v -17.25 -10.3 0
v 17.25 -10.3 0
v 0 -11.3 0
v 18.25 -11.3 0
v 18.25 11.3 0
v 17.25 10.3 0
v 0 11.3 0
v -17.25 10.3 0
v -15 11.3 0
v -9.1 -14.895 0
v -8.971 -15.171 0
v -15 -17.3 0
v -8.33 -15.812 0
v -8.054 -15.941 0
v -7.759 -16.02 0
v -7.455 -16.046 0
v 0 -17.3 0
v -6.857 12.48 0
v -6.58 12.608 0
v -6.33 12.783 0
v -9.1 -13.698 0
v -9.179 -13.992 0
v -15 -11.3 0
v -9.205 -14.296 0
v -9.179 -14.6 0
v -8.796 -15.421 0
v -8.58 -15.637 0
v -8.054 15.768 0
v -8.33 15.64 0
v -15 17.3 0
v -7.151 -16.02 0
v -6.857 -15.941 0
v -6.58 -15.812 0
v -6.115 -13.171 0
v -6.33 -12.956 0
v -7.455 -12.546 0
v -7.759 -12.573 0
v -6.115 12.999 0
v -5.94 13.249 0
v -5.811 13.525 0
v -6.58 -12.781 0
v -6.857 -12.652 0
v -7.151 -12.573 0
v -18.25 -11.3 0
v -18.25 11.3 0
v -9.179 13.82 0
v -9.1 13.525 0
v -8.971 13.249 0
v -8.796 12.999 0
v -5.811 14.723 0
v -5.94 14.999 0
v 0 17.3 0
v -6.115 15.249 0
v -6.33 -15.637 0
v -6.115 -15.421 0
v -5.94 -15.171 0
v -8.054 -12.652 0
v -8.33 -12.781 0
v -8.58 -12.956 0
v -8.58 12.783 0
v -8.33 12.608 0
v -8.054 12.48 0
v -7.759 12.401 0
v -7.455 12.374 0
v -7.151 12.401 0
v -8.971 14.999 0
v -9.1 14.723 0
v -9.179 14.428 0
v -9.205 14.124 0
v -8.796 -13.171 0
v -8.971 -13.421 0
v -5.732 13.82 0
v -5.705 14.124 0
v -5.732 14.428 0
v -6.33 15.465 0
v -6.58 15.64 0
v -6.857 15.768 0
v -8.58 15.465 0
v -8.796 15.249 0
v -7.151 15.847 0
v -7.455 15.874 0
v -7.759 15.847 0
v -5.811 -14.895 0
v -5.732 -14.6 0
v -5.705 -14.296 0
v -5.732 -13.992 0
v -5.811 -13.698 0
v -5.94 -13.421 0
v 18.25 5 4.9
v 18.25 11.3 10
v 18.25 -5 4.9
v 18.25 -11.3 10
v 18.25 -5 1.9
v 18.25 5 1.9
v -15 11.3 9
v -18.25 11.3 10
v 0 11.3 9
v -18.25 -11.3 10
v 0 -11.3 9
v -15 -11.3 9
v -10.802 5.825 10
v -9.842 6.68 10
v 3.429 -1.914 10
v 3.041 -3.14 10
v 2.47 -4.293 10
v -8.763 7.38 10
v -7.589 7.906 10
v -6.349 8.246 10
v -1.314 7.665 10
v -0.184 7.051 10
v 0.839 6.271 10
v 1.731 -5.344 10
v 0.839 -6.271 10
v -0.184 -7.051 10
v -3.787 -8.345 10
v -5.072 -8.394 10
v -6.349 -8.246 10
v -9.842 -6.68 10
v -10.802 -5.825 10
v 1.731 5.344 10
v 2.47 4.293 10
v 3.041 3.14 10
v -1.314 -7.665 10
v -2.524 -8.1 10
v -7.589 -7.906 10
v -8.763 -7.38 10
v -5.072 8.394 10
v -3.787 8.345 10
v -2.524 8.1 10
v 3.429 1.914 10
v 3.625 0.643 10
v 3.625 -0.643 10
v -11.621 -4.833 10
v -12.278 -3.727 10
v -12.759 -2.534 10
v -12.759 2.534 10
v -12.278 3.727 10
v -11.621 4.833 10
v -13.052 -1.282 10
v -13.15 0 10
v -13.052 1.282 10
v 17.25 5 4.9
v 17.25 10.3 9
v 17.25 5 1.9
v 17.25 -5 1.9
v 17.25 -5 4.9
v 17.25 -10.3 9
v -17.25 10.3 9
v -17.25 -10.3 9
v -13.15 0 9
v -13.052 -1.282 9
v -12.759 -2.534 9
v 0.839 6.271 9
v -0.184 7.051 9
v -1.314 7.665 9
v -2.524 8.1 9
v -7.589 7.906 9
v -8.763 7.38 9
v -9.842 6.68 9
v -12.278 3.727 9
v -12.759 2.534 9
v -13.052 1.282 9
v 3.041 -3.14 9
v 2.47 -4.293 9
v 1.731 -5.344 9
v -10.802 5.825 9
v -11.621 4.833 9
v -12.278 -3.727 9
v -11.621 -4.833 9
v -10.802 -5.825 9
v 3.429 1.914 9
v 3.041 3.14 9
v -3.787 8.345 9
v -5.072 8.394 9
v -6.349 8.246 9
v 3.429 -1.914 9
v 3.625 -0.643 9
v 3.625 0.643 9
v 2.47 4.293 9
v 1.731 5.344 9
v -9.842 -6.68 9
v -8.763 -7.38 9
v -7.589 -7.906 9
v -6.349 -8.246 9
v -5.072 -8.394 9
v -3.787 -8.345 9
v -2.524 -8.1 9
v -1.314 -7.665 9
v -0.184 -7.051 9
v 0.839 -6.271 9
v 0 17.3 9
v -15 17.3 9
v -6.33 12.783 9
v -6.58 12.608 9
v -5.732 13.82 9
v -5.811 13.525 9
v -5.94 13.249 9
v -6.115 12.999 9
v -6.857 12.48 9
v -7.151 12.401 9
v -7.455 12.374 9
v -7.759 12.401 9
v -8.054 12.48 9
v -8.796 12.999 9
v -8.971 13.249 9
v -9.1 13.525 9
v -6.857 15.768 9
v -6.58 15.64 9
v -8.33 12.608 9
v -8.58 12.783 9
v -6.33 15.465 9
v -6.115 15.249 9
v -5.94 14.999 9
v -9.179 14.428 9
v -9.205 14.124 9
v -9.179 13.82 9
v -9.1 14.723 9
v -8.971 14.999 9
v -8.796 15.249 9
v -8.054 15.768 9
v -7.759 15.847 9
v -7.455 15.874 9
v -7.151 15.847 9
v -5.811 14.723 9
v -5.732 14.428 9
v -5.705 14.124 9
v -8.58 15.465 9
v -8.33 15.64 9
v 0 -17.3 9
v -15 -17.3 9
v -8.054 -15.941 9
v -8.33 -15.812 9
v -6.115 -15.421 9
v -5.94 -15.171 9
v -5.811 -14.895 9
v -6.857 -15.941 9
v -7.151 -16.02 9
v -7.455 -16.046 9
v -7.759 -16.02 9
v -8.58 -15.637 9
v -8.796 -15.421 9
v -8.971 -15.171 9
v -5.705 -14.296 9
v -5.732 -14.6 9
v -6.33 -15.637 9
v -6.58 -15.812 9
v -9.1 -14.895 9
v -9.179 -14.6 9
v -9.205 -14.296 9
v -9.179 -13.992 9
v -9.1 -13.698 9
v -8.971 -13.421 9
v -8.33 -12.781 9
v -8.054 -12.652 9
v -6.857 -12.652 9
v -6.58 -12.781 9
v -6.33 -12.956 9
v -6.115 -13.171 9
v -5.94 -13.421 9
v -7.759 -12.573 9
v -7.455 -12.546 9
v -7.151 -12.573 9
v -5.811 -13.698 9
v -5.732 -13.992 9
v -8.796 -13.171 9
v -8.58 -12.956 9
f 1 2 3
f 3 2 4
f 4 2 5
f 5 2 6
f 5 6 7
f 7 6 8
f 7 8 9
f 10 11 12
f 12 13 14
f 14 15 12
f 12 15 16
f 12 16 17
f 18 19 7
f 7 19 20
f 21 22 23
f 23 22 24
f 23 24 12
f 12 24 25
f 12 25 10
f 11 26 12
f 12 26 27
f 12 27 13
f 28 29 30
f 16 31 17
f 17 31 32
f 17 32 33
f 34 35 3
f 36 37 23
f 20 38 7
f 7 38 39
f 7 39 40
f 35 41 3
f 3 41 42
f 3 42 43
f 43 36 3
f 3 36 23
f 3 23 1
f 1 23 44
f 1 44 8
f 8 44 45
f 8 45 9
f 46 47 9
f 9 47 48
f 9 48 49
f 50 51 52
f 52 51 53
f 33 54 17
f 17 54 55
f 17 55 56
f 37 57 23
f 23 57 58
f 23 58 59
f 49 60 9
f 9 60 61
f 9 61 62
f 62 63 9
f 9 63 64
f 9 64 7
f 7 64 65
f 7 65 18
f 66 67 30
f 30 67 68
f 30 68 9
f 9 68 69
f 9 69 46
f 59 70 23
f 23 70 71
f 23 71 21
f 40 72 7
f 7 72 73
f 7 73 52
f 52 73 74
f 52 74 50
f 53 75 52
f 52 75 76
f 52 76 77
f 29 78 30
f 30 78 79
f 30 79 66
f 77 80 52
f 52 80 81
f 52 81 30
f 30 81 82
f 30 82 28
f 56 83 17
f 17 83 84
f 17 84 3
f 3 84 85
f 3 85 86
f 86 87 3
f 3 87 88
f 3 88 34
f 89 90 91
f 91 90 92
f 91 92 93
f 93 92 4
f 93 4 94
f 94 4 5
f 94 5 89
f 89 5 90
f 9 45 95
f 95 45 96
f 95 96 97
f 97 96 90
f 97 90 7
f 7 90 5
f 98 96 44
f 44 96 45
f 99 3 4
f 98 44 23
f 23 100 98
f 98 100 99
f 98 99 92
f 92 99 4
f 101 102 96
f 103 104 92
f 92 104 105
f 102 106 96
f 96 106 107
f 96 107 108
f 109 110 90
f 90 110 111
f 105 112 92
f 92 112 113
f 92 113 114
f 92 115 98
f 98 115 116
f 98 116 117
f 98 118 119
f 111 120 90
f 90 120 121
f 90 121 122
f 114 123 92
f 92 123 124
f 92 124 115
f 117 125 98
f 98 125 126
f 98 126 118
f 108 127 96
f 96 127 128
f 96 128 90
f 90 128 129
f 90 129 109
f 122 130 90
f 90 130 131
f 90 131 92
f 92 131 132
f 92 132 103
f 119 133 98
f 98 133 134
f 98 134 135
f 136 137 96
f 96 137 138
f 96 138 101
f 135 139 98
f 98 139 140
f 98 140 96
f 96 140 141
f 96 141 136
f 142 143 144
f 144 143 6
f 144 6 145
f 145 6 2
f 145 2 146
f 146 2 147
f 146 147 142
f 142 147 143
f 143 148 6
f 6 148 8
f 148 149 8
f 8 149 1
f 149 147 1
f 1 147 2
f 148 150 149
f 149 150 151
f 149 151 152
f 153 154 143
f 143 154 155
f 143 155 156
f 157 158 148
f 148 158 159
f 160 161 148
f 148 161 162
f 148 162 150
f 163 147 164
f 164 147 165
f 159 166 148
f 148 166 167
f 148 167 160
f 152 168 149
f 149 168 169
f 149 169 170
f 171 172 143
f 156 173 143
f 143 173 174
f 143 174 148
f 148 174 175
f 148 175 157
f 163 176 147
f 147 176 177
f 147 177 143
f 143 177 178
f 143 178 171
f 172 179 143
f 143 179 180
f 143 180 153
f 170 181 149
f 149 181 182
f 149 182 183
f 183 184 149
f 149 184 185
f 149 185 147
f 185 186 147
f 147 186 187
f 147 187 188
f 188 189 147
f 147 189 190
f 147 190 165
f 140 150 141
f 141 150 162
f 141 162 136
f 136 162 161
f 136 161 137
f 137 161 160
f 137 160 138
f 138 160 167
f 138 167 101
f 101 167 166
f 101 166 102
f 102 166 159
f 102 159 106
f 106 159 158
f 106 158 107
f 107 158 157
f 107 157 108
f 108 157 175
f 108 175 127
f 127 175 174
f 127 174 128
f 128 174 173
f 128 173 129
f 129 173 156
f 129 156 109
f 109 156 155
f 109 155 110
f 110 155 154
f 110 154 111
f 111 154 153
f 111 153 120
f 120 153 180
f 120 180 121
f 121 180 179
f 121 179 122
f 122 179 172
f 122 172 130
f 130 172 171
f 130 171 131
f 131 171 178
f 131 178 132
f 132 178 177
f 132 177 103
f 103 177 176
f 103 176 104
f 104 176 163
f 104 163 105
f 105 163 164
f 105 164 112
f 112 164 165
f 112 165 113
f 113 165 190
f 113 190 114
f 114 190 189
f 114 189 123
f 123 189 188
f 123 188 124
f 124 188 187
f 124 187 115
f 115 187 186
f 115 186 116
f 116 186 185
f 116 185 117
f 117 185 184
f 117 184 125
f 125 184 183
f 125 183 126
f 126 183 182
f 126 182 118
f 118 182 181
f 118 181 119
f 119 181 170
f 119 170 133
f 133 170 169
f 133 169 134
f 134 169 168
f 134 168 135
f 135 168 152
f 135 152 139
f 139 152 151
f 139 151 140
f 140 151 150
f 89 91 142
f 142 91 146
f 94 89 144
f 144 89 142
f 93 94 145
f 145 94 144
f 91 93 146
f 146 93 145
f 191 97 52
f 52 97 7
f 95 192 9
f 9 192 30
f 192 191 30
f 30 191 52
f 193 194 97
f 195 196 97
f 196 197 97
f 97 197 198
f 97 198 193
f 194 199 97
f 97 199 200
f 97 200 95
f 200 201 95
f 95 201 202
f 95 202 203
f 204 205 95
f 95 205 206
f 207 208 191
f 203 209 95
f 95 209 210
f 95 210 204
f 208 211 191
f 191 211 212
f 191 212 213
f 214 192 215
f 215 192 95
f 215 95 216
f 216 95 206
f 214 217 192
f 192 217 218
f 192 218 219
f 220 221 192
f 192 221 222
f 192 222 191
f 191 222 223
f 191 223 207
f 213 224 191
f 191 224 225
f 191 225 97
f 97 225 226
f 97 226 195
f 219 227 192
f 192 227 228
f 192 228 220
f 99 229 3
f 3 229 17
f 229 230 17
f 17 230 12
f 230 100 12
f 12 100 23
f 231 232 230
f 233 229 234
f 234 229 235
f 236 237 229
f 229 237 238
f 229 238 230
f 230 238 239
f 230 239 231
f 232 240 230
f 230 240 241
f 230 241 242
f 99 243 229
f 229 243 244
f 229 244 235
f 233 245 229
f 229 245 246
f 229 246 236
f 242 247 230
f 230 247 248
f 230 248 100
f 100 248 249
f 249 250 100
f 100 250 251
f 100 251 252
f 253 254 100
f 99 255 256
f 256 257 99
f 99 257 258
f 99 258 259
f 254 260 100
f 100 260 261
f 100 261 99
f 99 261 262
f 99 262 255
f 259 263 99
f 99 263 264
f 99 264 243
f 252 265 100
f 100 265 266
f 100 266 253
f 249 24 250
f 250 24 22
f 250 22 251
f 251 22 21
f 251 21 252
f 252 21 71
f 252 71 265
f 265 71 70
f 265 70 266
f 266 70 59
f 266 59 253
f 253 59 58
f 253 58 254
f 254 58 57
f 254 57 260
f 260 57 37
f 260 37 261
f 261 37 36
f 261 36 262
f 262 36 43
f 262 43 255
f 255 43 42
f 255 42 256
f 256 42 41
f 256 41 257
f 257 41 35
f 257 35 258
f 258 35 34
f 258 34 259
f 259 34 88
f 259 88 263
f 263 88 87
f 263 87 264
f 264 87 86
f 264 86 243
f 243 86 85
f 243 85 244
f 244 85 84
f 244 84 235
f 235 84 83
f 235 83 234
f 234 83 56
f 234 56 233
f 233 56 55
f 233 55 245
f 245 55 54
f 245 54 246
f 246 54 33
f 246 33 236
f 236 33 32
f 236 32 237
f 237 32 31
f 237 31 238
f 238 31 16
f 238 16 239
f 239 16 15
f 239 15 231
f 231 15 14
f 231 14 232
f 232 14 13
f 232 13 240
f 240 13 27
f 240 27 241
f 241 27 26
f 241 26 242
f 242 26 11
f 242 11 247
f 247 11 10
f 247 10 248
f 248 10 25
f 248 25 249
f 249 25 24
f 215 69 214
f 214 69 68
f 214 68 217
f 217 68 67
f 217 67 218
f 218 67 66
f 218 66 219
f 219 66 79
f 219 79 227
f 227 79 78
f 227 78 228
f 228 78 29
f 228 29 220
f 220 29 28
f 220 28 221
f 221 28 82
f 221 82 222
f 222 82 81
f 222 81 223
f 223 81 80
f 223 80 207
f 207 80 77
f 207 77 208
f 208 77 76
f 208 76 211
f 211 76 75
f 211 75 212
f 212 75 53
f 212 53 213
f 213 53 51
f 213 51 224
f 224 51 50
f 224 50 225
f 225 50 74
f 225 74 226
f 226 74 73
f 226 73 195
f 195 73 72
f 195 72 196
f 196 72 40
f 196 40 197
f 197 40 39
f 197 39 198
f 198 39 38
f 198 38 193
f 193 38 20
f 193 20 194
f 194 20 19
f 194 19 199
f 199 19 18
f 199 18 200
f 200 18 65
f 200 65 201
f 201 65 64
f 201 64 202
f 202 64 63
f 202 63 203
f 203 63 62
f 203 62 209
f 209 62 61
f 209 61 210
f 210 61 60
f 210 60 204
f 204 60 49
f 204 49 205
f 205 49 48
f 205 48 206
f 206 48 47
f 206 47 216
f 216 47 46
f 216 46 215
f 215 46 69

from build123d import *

# Parameters (mm, degrees)
SKETCH1_W           = 36.5
SKETCH1_H           = 22.6
BOSS_EXTRUDE2_DEPTH = 10
SHELL2_T            = -1
SKETCH2_R           = 8.4
CUT_EXTRUDE1_DEPTH  = 10
SKETCH3_W           = 3
SKETCH3_H           = 10
CUT_EXTRUDE3_DEPTH  = 10
SKETCH4_W           = 15
SKETCH4_H           = 6
BOSS_EXTRUDE3_DEPTH = 9
SKETCH5_R           = 1.75
CUT_EXTRUDE4_DEPTH  = 18


with BuildPart() as part:
    # Sketch1 → Boss-Extrude2 (new body)
    with BuildSketch(Plane.XY):
        Rectangle(SKETCH1_W, SKETCH1_H)
    extrude(amount=BOSS_EXTRUDE2_DEPTH)

    # Shell2
    shell2_openings = [part.faces().sort_by_distance(p)[0] for p in [
        (0, 0, 0),
    ]]
    offset(amount=SHELL2_T, openings=shell2_openings, kind=Kind.INTERSECTION)

    # Sketch2 → Cut-Extrude1 (cut)
    with BuildSketch(Plane(origin=(0, 0, 9), x_dir=(-1, 0, 0), z_dir=(0, 0, -1))):
        with Locations((4.75, 0)):
            Circle(SKETCH2_R)
    extrude(amount=-CUT_EXTRUDE1_DEPTH, mode=Mode.SUBTRACT)

    # Sketch3 → Cut-Extrude3 (cut)
    with BuildSketch(Plane(origin=(18.25, 0, 0), x_dir=(0, 0, -1), z_dir=(1, 0, 0))):
        with Locations((-3.4, 0)):
            Rectangle(SKETCH3_W, SKETCH3_H)
    extrude(amount=-CUT_EXTRUDE3_DEPTH, mode=Mode.SUBTRACT)

    # Sketch4 → Boss-Extrude3 (add)
    with BuildSketch(Plane(origin=(0, 0, 9), x_dir=(-1, 0, 0), z_dir=(0, 0, -1))):
        with Locations((7.5, 14.3)):
            Rectangle(SKETCH4_W, SKETCH4_H)
        with Locations((7.5, -14.3)):
            Rectangle(SKETCH4_W, SKETCH4_H)
    extrude(amount=BOSS_EXTRUDE3_DEPTH)

    # Sketch5 → Cut-Extrude4 (cut)
    with BuildSketch(Plane(origin=(0, 0, 0), x_dir=(-1, 0, 0), z_dir=(0, 0, -1))):
        with Locations((7.455294422, 14.124015169)):
            Circle(SKETCH5_R)
        with Locations((7.455294422, -14.296167592)):
            Circle(SKETCH5_R)
    extrude(amount=-CUT_EXTRUDE4_DEPTH, mode=Mode.SUBTRACT)


solid = part.part
